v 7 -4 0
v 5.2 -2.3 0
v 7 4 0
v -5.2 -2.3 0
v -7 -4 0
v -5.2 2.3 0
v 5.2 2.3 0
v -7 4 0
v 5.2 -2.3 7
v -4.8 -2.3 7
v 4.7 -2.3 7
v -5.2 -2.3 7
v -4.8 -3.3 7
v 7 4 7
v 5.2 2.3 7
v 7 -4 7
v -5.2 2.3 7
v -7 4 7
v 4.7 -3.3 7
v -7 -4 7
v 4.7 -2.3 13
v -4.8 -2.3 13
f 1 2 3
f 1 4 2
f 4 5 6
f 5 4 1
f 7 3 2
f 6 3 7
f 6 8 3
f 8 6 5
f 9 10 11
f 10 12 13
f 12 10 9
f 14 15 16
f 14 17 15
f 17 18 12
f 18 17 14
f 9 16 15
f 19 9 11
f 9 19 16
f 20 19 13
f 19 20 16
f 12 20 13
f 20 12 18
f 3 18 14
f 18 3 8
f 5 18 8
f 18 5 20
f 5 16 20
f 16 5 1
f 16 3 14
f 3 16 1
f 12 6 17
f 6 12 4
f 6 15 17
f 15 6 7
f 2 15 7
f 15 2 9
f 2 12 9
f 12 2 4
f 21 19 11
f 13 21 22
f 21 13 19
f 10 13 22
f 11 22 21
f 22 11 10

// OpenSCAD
/*
Copyright (c) 2017 Paul Austin - SDG

Permission is hereby granted, free of charge, to any person obtaining a copy
of this software and associated documentation files (the "Software"), to deal
in the Software without restriction, including without limitation the rights
to use, copy, modify, merge, publish, distribute, sublicense, and/or sell
copies of the Software, and to permit persons to whom the Software is
furnished to do so, subject to the following conditions:

The above copyright notice and this permission notice shall be included in all
copies or substantial portions of the Software.

THE SOFTWARE IS PROVIDED "AS IS", WITHOUT WARRANTY OF ANY KIND, EXPRESS OR
IMPLIED, INCLUDING BUT NOT LIMITED TO THE WARRANTIES OF MERCHANTABILITY,
FITNESS FOR A PARTICULAR PURPOSE AND NONINFRINGEMENT. IN NO EVENT SHALL THE
AUTHORS OR COPYRIGHT HOLDERS BE LIABLE FOR ANY CLAIM, DAMAGES OR OTHER
LIABILITY, WHETHER IN AN ACTION OF CONTRACT, TORT OR OTHERWISE, ARISING FROM,
OUT OF OR IN CONNECTION WITH THE SOFTWARE OR THE USE OR OTHER DEALINGS IN THE
SOFTWARE.
*/

linear_extrude(7) {
    difference() {
        square([14, 8], center = true);
        square([10.4, 4.6], center = true);
    }
}

 translate([4.7,-2.3, 7]) rotate([0,-90,0]) linear_extrude(9.5) polygon([[0,0],[0,-1],[6,0]]);
